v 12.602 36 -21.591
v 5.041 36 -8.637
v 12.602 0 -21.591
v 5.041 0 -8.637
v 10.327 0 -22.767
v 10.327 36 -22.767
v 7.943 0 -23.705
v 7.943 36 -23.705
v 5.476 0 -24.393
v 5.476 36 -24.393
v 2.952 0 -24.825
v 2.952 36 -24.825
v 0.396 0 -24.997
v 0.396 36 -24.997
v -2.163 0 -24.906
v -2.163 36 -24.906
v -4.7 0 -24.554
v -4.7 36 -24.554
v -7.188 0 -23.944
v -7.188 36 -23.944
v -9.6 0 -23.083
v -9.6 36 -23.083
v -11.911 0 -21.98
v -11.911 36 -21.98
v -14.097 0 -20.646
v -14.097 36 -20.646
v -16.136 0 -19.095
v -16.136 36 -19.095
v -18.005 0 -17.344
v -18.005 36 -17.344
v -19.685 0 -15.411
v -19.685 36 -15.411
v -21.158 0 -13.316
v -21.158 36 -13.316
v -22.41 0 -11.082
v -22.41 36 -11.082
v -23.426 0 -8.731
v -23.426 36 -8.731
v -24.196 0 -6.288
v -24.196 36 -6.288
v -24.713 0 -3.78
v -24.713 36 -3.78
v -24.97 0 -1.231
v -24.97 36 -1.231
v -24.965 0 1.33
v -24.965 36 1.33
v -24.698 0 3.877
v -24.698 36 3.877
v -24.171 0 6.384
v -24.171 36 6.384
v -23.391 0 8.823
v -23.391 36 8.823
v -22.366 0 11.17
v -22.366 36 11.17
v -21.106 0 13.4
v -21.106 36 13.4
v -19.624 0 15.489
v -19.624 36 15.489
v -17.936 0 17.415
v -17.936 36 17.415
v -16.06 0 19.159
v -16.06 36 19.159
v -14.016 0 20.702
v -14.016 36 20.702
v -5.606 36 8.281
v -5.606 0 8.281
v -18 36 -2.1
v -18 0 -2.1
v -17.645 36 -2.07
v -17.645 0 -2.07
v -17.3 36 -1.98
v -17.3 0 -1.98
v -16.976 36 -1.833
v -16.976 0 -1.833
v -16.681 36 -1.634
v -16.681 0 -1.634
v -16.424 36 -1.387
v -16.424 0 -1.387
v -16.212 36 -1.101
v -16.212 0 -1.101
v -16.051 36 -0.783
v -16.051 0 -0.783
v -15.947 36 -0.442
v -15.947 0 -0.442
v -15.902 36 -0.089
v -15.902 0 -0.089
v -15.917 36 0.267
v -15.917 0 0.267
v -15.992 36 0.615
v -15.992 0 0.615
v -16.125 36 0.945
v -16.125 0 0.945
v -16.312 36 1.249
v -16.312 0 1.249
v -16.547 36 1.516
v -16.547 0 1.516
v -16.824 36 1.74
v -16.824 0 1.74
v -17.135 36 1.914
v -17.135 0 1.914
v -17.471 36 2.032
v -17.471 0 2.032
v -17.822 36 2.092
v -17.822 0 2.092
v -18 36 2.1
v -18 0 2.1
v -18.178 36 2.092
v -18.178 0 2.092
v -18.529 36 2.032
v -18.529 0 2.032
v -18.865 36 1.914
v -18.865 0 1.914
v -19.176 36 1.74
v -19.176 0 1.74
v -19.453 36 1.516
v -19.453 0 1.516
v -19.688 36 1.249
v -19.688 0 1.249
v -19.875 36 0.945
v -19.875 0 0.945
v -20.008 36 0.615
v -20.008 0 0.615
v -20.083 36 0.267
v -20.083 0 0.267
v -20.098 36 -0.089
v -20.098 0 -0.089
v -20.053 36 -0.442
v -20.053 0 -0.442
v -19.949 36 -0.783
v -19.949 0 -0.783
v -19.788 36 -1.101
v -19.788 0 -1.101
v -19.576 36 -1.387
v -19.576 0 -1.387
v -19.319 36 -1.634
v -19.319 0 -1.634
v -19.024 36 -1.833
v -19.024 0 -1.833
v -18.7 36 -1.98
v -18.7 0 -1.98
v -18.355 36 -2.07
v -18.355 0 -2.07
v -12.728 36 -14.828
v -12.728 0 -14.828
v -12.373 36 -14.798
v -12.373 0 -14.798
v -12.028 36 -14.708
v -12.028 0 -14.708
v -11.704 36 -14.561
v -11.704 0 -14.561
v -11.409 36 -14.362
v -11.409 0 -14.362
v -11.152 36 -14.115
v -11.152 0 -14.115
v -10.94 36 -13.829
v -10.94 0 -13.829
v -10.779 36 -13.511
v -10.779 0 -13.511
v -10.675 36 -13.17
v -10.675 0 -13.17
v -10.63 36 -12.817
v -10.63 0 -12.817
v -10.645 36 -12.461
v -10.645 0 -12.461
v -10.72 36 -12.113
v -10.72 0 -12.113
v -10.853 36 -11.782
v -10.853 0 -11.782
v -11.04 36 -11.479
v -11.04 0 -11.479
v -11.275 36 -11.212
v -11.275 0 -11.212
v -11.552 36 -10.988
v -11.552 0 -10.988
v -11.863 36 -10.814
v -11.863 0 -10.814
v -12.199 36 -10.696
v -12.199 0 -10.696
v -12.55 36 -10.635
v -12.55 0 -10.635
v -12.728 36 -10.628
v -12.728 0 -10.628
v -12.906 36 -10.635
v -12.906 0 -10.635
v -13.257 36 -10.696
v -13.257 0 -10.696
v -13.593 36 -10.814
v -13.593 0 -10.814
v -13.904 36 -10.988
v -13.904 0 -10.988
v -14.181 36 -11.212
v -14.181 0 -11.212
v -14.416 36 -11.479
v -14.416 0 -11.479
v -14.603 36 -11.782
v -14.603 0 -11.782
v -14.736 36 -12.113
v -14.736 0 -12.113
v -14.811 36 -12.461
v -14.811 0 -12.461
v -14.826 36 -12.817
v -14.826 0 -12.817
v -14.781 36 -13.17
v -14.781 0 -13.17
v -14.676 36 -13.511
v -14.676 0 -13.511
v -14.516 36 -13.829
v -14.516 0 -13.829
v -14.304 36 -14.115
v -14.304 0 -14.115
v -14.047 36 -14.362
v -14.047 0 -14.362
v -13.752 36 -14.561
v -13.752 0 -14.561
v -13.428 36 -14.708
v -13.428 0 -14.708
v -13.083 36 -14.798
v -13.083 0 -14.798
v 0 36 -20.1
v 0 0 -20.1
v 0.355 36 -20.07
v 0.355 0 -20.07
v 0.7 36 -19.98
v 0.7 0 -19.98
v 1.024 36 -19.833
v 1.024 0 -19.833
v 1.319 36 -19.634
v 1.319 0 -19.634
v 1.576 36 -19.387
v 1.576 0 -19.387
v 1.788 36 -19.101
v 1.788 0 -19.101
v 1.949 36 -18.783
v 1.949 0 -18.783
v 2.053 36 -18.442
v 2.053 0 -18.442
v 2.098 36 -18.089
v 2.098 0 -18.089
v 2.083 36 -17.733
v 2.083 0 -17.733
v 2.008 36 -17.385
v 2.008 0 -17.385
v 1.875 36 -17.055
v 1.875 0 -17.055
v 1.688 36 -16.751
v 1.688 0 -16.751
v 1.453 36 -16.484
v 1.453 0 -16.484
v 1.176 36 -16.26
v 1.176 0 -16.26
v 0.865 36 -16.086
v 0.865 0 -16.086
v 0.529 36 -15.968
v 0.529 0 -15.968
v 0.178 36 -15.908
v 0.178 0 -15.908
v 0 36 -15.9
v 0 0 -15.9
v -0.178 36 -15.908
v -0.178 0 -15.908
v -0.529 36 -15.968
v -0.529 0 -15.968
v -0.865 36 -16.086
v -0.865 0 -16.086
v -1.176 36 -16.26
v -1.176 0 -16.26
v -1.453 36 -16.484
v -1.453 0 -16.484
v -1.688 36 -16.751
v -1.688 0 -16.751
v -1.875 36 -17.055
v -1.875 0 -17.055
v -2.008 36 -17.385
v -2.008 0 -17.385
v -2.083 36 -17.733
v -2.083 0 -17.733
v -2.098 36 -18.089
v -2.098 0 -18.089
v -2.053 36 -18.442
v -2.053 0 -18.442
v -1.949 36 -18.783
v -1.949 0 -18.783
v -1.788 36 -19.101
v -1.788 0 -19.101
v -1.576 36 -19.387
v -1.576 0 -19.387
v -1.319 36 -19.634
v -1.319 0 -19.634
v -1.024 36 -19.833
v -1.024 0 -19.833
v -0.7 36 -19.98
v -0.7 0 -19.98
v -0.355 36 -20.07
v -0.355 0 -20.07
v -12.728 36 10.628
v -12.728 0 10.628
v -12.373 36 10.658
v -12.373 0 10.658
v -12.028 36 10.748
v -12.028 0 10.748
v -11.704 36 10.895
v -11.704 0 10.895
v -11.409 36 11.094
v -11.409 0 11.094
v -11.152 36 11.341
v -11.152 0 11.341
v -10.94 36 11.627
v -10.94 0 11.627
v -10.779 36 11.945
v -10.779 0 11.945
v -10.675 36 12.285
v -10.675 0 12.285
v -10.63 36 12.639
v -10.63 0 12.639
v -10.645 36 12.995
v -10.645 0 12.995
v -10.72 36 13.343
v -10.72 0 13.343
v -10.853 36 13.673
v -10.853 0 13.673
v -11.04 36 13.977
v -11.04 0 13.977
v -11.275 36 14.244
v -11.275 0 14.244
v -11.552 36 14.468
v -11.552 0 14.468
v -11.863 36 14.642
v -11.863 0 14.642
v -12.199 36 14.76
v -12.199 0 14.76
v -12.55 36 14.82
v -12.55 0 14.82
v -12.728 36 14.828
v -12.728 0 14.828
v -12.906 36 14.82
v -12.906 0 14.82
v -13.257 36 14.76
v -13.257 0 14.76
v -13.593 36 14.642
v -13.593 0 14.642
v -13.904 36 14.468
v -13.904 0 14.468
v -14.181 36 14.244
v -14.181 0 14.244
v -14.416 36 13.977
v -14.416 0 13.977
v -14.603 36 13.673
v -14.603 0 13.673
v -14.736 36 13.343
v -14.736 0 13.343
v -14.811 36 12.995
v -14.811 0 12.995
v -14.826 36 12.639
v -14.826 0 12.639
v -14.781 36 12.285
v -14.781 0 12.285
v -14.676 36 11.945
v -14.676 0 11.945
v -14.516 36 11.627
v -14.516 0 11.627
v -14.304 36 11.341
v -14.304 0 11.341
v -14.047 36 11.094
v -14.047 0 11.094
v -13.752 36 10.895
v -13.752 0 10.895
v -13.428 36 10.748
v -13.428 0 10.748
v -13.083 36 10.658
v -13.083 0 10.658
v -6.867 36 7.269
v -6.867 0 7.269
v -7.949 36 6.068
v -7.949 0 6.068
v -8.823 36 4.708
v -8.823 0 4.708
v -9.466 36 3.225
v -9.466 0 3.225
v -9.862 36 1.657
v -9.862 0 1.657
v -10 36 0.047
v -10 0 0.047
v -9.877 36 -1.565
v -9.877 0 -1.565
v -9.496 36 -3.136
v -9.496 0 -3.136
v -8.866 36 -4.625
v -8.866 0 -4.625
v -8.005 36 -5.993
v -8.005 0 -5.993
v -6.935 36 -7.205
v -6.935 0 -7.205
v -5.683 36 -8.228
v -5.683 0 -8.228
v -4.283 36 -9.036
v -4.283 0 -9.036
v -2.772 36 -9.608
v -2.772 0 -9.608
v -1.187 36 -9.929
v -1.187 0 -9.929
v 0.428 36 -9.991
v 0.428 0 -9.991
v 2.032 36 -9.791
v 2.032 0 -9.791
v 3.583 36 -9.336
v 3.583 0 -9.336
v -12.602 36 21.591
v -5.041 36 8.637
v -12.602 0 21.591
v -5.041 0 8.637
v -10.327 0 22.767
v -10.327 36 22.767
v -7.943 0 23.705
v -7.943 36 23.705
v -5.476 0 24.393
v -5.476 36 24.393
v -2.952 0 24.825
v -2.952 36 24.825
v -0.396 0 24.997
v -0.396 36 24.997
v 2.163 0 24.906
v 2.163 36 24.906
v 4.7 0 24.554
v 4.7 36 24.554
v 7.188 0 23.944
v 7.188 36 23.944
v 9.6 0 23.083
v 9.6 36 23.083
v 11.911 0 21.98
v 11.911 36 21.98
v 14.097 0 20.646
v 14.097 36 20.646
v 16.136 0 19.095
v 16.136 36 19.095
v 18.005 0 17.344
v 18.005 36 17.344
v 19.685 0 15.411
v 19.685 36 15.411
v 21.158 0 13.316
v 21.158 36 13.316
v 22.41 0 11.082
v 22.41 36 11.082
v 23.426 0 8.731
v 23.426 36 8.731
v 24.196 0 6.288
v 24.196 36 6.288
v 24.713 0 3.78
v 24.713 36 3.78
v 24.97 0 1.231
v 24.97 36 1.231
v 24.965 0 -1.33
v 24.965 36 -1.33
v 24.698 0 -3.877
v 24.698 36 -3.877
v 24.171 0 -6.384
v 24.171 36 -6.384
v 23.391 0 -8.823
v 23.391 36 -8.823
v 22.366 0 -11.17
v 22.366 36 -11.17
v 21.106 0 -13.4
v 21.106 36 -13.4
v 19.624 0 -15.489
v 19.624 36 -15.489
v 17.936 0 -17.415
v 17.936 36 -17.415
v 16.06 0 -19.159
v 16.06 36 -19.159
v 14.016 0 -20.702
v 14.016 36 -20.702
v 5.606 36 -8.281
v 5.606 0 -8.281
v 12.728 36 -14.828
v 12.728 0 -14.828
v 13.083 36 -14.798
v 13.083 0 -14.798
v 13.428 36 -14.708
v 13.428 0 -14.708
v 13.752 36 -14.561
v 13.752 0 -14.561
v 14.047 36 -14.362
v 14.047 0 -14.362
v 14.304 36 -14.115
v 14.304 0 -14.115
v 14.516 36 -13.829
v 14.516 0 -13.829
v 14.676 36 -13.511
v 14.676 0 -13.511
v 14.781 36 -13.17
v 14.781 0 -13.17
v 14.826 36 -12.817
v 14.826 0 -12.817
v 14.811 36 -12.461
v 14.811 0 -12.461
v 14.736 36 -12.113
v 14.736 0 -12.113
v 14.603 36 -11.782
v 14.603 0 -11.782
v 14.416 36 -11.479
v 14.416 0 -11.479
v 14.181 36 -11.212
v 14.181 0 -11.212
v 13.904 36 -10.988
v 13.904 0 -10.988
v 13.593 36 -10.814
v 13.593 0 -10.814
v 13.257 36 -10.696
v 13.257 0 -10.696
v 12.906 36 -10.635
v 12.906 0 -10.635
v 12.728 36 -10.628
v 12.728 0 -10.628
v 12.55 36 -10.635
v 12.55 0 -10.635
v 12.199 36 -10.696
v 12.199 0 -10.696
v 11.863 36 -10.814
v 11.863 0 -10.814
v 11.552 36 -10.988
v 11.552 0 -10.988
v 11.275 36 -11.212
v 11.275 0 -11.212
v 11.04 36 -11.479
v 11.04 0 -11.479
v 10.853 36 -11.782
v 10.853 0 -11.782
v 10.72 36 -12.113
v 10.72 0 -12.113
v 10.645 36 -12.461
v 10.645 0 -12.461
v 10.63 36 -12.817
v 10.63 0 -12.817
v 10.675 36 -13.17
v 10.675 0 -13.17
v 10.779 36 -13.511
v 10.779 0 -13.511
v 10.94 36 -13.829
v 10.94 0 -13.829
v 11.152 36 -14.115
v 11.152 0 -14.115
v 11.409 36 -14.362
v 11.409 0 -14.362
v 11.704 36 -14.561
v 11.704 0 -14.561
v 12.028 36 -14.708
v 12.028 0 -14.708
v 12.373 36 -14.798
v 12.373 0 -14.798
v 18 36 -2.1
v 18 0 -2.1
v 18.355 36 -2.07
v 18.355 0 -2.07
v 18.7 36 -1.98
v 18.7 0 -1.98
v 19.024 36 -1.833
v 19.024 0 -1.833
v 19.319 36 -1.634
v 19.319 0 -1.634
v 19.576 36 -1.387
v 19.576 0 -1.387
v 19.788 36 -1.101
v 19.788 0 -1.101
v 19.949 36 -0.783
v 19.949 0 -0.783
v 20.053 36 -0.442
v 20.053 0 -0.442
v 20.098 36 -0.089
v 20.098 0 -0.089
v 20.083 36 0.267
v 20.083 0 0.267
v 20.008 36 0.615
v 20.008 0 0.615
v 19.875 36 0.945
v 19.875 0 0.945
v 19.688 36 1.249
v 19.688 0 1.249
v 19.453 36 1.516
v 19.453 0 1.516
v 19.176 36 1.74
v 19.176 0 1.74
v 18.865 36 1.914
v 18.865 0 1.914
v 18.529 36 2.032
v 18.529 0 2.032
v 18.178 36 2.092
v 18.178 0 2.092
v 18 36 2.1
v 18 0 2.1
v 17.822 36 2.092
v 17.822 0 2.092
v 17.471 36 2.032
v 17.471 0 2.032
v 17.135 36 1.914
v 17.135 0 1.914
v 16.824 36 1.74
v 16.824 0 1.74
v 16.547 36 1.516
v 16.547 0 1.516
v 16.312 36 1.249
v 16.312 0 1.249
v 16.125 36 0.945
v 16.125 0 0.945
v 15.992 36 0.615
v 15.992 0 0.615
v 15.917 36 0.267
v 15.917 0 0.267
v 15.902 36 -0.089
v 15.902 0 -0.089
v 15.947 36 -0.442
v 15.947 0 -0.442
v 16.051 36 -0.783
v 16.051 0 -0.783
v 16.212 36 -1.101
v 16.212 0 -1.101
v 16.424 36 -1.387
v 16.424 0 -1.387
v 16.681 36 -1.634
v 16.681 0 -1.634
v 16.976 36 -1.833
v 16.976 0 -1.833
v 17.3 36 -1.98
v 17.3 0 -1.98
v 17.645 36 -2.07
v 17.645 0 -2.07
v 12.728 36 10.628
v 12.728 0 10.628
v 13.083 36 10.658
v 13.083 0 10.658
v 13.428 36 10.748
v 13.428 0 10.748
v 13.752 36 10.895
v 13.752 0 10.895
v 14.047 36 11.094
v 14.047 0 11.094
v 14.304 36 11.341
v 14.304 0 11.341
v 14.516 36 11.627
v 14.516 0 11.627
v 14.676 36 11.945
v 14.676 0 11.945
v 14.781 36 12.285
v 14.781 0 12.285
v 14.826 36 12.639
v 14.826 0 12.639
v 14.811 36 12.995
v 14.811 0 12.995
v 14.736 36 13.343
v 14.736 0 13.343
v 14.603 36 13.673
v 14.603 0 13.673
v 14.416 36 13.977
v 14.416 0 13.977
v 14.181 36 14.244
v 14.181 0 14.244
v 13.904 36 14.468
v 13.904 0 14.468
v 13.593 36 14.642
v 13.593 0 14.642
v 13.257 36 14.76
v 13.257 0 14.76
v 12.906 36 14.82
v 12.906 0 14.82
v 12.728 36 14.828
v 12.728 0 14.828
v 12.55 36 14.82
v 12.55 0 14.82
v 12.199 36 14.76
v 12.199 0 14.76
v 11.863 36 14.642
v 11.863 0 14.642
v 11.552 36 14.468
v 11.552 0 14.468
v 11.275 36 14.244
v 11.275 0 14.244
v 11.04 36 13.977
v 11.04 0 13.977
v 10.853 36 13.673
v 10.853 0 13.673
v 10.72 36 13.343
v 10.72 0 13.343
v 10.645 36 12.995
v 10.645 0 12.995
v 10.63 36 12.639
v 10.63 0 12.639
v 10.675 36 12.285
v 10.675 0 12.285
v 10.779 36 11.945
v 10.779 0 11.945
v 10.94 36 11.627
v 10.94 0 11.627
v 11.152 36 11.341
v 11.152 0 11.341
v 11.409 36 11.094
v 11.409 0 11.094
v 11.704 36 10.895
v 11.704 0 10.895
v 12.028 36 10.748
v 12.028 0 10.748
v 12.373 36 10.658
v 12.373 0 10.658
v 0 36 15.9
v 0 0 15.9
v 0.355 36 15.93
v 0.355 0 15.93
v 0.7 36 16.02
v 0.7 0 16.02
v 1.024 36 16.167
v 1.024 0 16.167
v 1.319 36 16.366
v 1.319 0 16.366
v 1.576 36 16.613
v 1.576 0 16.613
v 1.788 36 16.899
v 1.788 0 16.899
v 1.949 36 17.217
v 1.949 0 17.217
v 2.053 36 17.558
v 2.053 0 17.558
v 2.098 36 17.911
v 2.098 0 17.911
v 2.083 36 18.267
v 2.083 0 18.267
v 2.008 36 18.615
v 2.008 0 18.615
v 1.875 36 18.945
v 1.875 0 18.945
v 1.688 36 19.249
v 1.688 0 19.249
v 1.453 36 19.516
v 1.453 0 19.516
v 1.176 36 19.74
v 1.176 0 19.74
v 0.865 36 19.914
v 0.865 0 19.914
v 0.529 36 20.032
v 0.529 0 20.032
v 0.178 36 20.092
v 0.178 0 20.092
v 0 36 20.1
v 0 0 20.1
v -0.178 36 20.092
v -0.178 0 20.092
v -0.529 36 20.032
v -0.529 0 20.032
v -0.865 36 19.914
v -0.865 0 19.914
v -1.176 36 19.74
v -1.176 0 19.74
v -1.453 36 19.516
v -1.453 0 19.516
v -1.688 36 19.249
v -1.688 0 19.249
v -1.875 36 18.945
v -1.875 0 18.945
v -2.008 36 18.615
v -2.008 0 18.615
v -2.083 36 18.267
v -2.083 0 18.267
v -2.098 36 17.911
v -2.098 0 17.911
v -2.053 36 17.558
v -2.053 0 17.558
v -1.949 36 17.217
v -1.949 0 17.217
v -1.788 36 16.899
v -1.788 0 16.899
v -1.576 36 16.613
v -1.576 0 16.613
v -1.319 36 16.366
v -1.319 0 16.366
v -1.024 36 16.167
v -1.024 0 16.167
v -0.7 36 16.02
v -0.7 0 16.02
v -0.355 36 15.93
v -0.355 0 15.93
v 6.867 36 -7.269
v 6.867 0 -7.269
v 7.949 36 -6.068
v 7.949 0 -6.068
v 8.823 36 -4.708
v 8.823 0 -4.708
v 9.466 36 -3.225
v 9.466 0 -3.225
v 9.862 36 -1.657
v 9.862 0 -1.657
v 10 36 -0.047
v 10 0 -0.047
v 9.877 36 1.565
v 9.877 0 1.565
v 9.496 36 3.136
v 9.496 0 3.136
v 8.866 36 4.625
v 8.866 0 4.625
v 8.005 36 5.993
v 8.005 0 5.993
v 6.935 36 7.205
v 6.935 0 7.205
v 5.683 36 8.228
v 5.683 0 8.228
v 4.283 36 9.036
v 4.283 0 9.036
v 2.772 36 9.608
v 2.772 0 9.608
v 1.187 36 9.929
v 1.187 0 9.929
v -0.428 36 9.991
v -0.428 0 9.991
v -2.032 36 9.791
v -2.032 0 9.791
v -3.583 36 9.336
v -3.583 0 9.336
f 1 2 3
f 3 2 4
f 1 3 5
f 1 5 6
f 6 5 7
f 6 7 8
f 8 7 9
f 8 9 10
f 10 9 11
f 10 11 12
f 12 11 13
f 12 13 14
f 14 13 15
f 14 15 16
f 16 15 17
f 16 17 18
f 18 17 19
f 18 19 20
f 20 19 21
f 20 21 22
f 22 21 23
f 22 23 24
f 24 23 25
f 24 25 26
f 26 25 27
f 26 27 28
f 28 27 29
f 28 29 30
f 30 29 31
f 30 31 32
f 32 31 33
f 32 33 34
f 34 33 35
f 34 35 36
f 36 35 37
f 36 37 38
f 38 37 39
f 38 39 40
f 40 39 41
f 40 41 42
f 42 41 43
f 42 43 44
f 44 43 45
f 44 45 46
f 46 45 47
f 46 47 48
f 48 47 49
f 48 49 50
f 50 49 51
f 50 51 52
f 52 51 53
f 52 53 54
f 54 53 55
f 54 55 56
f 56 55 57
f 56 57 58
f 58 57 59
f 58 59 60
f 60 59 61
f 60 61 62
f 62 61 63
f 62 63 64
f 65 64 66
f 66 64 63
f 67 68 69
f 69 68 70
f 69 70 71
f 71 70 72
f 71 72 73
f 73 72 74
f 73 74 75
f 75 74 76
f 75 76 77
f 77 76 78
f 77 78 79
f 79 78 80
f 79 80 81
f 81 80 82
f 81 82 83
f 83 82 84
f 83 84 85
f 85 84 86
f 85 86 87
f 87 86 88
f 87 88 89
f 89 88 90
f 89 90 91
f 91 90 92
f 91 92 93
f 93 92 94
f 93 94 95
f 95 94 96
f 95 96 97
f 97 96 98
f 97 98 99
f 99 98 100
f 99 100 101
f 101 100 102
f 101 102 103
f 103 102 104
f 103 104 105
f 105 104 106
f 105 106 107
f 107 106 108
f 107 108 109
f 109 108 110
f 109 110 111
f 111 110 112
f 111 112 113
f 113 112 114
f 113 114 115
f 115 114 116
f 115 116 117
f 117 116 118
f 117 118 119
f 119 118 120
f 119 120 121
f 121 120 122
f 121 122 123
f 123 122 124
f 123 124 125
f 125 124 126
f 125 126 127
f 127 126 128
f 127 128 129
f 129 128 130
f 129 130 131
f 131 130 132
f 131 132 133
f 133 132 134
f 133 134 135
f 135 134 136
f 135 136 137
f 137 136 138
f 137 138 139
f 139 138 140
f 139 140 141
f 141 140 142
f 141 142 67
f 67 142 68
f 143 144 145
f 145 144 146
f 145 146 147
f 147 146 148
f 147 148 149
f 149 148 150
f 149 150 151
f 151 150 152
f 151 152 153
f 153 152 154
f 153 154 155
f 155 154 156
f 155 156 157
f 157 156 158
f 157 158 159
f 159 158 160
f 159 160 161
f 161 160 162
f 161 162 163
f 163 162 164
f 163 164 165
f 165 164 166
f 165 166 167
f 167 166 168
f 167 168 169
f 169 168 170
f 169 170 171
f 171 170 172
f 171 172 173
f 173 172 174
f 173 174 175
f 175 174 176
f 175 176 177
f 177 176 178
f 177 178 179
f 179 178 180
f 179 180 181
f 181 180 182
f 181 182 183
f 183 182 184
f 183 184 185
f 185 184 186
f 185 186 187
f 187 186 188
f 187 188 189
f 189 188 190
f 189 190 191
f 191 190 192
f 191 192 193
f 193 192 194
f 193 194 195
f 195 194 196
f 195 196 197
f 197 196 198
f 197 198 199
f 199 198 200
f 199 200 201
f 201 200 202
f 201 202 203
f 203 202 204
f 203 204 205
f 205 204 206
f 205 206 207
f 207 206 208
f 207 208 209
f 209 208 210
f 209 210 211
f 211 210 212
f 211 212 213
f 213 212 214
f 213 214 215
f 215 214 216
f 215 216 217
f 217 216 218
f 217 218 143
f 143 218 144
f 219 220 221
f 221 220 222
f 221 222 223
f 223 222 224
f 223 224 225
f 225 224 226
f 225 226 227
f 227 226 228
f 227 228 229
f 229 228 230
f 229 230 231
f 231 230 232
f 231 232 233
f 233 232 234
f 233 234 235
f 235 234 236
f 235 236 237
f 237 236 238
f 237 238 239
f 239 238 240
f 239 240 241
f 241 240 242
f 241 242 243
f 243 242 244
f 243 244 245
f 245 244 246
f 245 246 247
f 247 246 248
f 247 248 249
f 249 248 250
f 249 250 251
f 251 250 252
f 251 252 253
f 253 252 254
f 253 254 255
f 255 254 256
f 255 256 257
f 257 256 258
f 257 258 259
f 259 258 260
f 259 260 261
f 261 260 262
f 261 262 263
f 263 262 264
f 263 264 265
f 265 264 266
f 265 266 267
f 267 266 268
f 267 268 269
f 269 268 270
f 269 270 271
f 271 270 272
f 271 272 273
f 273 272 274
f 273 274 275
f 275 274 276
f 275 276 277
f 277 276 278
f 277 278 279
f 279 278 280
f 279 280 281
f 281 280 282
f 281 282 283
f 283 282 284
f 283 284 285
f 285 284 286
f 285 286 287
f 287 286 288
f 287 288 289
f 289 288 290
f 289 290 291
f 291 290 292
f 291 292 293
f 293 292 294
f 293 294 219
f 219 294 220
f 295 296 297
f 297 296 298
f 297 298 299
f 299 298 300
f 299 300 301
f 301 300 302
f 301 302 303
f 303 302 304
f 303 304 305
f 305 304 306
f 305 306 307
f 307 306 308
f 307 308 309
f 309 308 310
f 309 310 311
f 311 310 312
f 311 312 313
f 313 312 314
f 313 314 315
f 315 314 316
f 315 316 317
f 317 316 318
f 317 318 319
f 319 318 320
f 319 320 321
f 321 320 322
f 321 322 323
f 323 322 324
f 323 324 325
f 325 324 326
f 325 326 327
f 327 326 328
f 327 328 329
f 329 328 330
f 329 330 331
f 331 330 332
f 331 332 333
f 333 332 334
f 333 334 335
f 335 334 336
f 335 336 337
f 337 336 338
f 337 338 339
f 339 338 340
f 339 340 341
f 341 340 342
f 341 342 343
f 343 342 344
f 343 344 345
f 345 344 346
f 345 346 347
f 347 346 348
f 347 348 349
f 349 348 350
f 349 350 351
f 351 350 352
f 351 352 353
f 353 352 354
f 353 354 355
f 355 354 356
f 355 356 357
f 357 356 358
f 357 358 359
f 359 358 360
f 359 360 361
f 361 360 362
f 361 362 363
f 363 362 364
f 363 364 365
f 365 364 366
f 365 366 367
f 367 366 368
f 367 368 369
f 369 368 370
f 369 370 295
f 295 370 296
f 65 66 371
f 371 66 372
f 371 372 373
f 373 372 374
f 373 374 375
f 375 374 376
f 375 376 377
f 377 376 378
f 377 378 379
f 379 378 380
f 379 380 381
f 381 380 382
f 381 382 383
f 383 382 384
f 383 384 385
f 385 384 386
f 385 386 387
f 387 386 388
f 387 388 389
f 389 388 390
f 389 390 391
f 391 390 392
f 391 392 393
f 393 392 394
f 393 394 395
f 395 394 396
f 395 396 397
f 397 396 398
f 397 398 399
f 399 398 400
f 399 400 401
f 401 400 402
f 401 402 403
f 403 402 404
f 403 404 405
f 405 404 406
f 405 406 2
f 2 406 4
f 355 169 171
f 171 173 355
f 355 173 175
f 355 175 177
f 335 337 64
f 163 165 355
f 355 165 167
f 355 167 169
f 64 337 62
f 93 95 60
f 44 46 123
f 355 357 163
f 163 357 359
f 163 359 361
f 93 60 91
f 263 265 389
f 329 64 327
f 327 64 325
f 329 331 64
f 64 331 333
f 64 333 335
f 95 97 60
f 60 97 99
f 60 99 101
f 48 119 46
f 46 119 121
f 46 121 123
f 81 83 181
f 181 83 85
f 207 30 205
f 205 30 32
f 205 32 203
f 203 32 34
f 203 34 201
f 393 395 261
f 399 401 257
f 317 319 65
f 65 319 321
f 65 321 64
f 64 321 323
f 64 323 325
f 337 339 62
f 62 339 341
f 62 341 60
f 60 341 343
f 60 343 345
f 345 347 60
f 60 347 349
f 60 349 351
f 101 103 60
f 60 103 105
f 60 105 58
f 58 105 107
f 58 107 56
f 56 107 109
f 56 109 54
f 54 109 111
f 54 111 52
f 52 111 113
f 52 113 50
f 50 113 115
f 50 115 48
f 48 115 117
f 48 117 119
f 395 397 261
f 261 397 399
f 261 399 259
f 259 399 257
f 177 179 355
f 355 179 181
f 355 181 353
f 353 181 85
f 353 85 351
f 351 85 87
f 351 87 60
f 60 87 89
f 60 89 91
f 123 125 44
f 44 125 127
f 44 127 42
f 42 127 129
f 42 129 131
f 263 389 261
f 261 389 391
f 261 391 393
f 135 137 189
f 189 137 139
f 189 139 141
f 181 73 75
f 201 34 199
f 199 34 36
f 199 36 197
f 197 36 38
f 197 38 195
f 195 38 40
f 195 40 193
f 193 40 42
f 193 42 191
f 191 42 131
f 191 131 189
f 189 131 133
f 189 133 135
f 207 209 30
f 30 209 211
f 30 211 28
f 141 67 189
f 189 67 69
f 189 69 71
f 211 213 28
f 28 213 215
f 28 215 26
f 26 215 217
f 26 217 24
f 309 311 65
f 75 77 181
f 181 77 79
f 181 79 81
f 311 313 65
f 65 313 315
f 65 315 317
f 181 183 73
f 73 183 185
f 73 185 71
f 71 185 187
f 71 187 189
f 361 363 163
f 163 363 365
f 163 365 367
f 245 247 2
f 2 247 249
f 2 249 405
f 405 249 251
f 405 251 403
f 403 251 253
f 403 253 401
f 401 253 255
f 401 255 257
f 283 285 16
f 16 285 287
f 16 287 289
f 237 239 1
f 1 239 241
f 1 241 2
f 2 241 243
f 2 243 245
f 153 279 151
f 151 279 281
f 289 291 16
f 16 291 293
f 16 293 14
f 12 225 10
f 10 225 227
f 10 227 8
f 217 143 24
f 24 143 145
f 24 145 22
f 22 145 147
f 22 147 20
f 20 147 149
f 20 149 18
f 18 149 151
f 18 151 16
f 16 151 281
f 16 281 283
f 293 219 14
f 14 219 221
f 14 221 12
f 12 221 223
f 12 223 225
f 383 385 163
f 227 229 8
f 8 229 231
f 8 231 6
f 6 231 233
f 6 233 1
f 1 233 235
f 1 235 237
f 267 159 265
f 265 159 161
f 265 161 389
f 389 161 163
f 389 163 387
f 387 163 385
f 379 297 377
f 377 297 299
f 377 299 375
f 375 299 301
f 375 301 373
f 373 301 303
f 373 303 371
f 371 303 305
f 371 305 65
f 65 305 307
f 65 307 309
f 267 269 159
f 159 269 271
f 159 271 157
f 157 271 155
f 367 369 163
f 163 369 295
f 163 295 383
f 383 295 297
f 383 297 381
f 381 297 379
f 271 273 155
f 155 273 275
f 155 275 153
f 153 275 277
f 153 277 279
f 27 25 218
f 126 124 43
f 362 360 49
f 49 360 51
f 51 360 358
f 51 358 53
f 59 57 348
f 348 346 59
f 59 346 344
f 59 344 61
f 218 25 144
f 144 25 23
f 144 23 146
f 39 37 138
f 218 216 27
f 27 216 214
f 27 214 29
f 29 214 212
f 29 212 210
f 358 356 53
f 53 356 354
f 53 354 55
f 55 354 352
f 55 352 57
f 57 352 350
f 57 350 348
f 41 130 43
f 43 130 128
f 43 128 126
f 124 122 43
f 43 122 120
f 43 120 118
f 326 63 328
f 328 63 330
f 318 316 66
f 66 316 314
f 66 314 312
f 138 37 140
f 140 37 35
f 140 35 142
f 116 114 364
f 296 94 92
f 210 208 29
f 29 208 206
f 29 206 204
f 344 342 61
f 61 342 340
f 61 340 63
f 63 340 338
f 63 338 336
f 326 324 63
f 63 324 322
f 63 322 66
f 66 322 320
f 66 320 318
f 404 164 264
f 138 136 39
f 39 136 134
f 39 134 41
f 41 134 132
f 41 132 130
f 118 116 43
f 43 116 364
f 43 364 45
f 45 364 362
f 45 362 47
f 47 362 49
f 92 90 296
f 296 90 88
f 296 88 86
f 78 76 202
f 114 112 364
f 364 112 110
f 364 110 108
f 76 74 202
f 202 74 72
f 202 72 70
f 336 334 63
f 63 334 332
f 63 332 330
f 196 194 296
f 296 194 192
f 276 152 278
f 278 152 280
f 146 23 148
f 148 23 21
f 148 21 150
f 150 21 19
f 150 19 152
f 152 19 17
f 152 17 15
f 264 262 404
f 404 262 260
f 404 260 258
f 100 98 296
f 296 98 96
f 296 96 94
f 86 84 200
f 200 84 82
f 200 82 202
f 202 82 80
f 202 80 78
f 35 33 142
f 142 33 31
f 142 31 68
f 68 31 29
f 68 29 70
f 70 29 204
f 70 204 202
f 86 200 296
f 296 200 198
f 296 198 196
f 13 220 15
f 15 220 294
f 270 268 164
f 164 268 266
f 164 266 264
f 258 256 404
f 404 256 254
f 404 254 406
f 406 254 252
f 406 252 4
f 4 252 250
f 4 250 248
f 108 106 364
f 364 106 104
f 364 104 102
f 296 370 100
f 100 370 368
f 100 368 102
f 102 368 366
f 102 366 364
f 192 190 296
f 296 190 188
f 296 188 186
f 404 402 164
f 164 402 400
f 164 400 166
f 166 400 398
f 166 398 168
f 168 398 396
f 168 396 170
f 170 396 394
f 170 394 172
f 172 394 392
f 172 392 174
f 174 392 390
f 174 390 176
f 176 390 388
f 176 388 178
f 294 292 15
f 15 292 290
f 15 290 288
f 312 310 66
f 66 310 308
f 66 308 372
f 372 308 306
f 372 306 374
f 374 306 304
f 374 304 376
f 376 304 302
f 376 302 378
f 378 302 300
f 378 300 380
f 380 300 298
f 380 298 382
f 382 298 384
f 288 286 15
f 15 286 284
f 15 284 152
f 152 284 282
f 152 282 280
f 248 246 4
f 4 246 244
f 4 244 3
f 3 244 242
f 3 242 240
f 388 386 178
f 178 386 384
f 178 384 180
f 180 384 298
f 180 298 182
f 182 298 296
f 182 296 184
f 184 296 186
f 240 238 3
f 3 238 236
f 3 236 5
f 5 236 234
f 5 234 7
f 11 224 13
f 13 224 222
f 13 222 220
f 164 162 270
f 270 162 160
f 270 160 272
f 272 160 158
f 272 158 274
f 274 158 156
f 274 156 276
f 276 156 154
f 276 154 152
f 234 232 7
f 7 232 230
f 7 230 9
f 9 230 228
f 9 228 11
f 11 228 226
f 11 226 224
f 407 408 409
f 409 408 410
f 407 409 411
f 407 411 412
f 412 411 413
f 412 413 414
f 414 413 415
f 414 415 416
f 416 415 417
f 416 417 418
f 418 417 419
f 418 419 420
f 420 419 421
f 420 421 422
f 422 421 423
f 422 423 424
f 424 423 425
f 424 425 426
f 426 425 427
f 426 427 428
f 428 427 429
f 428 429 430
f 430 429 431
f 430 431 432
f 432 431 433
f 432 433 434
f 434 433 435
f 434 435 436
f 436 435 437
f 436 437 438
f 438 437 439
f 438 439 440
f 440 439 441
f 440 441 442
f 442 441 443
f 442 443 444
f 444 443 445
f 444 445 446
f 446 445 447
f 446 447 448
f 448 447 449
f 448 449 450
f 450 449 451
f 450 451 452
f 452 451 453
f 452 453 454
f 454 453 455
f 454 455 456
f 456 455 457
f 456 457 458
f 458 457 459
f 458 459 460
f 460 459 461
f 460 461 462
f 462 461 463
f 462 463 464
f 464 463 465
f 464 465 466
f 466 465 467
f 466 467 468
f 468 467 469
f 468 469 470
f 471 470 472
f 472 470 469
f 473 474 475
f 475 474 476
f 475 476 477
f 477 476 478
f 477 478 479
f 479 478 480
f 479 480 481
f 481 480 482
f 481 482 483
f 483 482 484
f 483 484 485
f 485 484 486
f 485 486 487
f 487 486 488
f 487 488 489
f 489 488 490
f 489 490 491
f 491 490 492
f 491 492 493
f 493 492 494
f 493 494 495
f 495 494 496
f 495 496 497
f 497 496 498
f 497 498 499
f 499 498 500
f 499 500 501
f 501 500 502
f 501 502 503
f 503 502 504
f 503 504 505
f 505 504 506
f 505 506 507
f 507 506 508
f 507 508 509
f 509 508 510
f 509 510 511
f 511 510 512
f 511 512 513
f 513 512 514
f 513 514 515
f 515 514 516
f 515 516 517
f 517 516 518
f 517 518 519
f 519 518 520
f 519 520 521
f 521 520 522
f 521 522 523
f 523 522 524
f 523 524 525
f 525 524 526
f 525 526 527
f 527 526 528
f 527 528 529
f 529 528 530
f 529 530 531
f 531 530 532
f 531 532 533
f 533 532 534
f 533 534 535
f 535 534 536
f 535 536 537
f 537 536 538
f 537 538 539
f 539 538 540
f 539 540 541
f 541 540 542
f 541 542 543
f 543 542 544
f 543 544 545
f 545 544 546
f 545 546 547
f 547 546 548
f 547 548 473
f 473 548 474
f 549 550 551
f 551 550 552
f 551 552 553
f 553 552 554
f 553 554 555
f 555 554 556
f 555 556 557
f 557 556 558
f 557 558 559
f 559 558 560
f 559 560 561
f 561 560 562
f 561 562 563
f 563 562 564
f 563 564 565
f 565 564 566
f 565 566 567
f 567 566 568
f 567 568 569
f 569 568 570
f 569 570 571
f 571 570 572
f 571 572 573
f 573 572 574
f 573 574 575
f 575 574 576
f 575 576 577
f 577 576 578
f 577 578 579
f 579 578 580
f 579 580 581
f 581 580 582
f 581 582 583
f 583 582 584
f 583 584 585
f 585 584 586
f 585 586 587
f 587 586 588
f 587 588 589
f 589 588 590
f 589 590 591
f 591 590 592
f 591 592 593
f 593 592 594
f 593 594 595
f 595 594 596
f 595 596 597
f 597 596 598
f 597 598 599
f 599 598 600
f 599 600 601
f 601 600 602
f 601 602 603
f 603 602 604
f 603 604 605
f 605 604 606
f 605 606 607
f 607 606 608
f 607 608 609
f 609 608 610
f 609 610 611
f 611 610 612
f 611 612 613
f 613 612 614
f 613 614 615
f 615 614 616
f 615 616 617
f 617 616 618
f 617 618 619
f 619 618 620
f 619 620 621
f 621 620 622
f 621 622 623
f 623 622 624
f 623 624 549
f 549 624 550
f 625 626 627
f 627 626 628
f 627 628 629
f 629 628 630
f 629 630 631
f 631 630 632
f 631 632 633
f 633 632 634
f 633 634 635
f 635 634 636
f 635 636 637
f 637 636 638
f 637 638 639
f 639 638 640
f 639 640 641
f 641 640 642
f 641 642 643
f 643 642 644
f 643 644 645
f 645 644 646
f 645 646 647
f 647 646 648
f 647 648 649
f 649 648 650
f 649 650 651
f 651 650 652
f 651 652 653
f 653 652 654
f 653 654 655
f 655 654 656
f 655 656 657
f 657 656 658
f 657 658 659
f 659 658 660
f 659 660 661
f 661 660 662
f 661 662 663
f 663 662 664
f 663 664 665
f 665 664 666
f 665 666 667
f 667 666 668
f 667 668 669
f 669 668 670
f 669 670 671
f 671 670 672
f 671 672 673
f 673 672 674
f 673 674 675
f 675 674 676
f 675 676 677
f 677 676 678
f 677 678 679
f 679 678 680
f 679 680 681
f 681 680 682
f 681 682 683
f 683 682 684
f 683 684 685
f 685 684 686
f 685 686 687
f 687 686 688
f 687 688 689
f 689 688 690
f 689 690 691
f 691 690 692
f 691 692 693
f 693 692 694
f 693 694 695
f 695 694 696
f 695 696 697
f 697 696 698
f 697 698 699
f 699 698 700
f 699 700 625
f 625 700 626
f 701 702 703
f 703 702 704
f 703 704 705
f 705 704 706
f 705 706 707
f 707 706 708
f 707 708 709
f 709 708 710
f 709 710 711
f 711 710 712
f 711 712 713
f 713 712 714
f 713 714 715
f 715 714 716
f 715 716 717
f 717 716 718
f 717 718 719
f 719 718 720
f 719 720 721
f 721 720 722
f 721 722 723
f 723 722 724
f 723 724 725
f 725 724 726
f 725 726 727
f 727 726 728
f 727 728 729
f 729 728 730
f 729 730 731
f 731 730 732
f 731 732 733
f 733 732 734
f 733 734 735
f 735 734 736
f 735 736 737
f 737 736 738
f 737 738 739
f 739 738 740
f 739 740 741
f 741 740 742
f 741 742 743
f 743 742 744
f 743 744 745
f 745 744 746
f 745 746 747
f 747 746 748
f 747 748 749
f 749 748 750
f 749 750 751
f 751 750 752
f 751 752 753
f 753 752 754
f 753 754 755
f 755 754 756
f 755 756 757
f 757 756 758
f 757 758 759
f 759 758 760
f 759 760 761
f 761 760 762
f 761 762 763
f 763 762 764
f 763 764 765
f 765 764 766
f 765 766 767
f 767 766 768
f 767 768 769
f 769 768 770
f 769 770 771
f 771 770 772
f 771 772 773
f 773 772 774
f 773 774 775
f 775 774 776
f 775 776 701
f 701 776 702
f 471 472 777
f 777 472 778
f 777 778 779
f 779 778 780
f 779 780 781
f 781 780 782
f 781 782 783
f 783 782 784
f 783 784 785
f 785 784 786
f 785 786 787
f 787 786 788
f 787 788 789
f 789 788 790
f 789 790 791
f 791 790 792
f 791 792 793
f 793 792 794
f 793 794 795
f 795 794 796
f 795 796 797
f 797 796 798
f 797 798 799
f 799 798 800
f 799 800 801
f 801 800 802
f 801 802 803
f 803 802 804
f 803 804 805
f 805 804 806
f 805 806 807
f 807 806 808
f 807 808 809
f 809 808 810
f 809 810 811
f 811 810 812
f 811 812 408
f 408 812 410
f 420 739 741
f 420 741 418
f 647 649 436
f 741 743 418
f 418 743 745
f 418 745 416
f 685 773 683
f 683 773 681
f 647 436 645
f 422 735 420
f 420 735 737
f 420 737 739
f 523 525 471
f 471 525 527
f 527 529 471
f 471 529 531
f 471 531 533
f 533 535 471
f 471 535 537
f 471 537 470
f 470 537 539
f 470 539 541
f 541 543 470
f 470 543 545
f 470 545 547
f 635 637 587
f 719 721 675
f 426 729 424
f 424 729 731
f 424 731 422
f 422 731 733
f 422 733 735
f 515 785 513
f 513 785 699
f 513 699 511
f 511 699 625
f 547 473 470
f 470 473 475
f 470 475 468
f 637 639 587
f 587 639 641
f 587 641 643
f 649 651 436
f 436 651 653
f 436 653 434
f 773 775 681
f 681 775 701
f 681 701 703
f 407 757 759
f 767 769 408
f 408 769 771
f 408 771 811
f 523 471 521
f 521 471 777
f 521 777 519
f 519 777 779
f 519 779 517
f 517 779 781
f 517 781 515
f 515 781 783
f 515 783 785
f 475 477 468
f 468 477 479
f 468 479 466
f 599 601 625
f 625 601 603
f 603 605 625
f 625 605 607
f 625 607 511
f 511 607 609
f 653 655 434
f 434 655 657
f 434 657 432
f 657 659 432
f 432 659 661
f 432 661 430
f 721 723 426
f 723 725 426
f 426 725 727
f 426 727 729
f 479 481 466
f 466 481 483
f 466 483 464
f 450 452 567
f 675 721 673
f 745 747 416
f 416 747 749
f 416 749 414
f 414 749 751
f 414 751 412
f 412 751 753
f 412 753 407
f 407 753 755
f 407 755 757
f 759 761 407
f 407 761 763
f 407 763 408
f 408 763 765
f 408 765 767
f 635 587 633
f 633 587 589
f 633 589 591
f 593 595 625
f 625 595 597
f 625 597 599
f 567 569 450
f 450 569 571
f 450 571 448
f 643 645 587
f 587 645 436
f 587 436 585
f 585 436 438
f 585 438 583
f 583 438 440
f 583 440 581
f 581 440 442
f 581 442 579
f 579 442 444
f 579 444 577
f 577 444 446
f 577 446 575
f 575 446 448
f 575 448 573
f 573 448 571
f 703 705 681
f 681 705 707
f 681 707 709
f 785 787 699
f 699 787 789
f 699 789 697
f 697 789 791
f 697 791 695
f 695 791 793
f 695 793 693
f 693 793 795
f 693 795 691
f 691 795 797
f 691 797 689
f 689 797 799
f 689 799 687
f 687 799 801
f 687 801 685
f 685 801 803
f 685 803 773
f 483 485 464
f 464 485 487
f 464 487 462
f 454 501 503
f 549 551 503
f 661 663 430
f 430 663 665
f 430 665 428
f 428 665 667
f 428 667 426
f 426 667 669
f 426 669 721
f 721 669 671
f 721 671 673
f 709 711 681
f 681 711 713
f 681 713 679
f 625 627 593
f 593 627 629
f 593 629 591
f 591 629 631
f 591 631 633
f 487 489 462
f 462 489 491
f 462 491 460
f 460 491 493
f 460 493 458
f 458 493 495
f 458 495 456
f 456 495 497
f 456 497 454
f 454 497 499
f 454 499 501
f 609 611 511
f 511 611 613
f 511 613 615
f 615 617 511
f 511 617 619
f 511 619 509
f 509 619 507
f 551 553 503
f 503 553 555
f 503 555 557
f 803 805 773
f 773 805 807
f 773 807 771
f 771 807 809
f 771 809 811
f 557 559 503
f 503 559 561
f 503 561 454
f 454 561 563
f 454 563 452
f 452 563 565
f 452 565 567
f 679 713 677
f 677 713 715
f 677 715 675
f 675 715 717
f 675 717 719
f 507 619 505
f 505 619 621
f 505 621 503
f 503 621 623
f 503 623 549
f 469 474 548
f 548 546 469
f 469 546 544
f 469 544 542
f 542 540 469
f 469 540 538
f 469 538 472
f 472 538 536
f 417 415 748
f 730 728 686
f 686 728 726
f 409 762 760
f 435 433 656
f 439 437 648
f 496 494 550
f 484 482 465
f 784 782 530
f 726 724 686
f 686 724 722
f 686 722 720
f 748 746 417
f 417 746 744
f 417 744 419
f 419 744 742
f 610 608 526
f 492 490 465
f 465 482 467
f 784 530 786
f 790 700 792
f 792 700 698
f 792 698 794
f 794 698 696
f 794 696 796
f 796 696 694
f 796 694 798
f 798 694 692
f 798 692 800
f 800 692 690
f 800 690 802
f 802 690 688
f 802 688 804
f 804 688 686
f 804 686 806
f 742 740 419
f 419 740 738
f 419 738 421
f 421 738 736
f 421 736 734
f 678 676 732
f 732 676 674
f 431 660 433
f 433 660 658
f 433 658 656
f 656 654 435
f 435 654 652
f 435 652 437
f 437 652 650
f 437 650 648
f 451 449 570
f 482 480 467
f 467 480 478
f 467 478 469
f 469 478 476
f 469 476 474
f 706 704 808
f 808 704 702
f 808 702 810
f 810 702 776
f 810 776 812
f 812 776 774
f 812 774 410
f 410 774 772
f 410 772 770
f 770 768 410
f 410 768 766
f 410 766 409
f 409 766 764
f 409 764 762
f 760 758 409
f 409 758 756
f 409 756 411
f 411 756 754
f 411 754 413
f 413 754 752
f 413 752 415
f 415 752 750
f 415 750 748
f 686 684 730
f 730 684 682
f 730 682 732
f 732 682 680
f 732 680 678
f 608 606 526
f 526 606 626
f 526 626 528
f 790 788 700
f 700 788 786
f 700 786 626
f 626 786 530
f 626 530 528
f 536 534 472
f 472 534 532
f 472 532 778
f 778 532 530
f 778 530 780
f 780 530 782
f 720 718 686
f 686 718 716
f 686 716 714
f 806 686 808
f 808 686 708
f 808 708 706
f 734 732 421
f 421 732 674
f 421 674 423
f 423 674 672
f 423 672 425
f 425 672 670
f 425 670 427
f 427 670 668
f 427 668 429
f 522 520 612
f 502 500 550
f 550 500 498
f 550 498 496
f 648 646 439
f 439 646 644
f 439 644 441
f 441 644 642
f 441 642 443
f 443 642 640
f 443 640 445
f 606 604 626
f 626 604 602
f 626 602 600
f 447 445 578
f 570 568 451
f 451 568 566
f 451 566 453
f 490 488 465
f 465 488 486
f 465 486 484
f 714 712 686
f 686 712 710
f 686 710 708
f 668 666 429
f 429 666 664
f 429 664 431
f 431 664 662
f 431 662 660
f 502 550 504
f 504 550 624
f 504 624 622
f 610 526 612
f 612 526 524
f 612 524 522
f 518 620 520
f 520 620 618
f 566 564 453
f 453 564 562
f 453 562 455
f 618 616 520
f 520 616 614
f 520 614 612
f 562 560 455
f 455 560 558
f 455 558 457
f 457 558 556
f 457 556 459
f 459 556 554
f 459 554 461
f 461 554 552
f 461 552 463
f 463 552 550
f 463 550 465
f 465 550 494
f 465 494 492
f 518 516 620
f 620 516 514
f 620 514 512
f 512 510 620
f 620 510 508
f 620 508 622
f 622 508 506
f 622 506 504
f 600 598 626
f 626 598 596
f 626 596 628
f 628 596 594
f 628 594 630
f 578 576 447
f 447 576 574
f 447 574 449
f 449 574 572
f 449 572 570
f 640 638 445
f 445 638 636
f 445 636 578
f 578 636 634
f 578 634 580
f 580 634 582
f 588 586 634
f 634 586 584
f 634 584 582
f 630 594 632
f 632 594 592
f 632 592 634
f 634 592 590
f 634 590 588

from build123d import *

# Parameters (mm, degrees)
SKETCH_1_R        = 2.1
EXTRUDE_1_DEPTH   = 36
EXTRUDE_1_2_DEPTH = 36


with BuildPart() as part:
    # Эскиз1 → Бобышка-Вытянуть1 (new body)
    with BuildSketch(Plane(origin=(0, 0, 0), x_dir=(1, 0, 0), z_dir=(0, 1, 0))):
        with BuildLine():
            Line((-14.015859913, -20.701586193), (-5.606343965, -8.280634477))
            ThreePointArc((-5.606343965, -8.280634477), (-8.46332743, 5.326545673), (5.040799558, 8.63656991))
            Line((5.040799558, 8.63656991), (12.601998896, 21.591424775))
            ThreePointArc((12.601998896, 21.591424775), (-21.158318575, 13.316364183), (-14.015859913, -20.701586193))
        make_face()
        with Locations(Location((-12.727922061, -12.727922061, 0), (0, 0, 270))):
            Circle(SKETCH_1_R, mode=Mode.SUBTRACT)
        with Locations(Location((-18, 0, 0), (0, 0, 270))):
            Circle(SKETCH_1_R, mode=Mode.SUBTRACT)
        with Locations(Location((-12.727922061, 12.727922061, 0), (0, 0, 270))):
            Circle(SKETCH_1_R, mode=Mode.SUBTRACT)
        with Locations(Location((0, 18, 0), (0, 0, 270))):
            Circle(SKETCH_1_R, mode=Mode.SUBTRACT)
    extrude(amount=EXTRUDE_1_DEPTH)


with BuildPart() as body_2:
    # Эскиз1 → Extrude 1 2 (new body)
    with BuildSketch(Plane(origin=(0, 0, 0), x_dir=(1, 0, 0), z_dir=(0, 1, 0))):
        with BuildLine():
            ThreePointArc((10, 0), (4.979558435, -8.672023858), (-5.040799558, -8.63656991))
            Line((-5.040799558, -8.63656991), (-12.601998896, -21.591424775))
            ThreePointArc((-12.601998896, -21.591424775), (12.448896088, -21.680059645), (25, 0))
            ThreePointArc((25, 0), (22.083891163, 11.717582988), (14.015859913, 20.701586193))
            Line((14.015859913, 20.701586193), (5.606343965, 8.280634477))
            ThreePointArc((5.606343965, 8.280634477), (8.833556465, 4.687033195), (10, 0))
        make_face()
        with Locations(Location((0, -18, 0), (0, 0, 270))):
            Circle(SKETCH_1_R, mode=Mode.SUBTRACT)
        with Locations(Location((12.727922061, -12.727922061, 0), (0, 0, 270))):
            Circle(SKETCH_1_R, mode=Mode.SUBTRACT)
        with Locations(Location((18, 0, 0), (0, 0, 270))):
            Circle(SKETCH_1_R, mode=Mode.SUBTRACT)
        with Locations(Location((12.727922061, 12.727922061, 0), (0, 0, 270))):
            Circle(SKETCH_1_R, mode=Mode.SUBTRACT)
    extrude(amount=EXTRUDE_1_2_DEPTH)


solid = Compound([part.part, body_2.part])
